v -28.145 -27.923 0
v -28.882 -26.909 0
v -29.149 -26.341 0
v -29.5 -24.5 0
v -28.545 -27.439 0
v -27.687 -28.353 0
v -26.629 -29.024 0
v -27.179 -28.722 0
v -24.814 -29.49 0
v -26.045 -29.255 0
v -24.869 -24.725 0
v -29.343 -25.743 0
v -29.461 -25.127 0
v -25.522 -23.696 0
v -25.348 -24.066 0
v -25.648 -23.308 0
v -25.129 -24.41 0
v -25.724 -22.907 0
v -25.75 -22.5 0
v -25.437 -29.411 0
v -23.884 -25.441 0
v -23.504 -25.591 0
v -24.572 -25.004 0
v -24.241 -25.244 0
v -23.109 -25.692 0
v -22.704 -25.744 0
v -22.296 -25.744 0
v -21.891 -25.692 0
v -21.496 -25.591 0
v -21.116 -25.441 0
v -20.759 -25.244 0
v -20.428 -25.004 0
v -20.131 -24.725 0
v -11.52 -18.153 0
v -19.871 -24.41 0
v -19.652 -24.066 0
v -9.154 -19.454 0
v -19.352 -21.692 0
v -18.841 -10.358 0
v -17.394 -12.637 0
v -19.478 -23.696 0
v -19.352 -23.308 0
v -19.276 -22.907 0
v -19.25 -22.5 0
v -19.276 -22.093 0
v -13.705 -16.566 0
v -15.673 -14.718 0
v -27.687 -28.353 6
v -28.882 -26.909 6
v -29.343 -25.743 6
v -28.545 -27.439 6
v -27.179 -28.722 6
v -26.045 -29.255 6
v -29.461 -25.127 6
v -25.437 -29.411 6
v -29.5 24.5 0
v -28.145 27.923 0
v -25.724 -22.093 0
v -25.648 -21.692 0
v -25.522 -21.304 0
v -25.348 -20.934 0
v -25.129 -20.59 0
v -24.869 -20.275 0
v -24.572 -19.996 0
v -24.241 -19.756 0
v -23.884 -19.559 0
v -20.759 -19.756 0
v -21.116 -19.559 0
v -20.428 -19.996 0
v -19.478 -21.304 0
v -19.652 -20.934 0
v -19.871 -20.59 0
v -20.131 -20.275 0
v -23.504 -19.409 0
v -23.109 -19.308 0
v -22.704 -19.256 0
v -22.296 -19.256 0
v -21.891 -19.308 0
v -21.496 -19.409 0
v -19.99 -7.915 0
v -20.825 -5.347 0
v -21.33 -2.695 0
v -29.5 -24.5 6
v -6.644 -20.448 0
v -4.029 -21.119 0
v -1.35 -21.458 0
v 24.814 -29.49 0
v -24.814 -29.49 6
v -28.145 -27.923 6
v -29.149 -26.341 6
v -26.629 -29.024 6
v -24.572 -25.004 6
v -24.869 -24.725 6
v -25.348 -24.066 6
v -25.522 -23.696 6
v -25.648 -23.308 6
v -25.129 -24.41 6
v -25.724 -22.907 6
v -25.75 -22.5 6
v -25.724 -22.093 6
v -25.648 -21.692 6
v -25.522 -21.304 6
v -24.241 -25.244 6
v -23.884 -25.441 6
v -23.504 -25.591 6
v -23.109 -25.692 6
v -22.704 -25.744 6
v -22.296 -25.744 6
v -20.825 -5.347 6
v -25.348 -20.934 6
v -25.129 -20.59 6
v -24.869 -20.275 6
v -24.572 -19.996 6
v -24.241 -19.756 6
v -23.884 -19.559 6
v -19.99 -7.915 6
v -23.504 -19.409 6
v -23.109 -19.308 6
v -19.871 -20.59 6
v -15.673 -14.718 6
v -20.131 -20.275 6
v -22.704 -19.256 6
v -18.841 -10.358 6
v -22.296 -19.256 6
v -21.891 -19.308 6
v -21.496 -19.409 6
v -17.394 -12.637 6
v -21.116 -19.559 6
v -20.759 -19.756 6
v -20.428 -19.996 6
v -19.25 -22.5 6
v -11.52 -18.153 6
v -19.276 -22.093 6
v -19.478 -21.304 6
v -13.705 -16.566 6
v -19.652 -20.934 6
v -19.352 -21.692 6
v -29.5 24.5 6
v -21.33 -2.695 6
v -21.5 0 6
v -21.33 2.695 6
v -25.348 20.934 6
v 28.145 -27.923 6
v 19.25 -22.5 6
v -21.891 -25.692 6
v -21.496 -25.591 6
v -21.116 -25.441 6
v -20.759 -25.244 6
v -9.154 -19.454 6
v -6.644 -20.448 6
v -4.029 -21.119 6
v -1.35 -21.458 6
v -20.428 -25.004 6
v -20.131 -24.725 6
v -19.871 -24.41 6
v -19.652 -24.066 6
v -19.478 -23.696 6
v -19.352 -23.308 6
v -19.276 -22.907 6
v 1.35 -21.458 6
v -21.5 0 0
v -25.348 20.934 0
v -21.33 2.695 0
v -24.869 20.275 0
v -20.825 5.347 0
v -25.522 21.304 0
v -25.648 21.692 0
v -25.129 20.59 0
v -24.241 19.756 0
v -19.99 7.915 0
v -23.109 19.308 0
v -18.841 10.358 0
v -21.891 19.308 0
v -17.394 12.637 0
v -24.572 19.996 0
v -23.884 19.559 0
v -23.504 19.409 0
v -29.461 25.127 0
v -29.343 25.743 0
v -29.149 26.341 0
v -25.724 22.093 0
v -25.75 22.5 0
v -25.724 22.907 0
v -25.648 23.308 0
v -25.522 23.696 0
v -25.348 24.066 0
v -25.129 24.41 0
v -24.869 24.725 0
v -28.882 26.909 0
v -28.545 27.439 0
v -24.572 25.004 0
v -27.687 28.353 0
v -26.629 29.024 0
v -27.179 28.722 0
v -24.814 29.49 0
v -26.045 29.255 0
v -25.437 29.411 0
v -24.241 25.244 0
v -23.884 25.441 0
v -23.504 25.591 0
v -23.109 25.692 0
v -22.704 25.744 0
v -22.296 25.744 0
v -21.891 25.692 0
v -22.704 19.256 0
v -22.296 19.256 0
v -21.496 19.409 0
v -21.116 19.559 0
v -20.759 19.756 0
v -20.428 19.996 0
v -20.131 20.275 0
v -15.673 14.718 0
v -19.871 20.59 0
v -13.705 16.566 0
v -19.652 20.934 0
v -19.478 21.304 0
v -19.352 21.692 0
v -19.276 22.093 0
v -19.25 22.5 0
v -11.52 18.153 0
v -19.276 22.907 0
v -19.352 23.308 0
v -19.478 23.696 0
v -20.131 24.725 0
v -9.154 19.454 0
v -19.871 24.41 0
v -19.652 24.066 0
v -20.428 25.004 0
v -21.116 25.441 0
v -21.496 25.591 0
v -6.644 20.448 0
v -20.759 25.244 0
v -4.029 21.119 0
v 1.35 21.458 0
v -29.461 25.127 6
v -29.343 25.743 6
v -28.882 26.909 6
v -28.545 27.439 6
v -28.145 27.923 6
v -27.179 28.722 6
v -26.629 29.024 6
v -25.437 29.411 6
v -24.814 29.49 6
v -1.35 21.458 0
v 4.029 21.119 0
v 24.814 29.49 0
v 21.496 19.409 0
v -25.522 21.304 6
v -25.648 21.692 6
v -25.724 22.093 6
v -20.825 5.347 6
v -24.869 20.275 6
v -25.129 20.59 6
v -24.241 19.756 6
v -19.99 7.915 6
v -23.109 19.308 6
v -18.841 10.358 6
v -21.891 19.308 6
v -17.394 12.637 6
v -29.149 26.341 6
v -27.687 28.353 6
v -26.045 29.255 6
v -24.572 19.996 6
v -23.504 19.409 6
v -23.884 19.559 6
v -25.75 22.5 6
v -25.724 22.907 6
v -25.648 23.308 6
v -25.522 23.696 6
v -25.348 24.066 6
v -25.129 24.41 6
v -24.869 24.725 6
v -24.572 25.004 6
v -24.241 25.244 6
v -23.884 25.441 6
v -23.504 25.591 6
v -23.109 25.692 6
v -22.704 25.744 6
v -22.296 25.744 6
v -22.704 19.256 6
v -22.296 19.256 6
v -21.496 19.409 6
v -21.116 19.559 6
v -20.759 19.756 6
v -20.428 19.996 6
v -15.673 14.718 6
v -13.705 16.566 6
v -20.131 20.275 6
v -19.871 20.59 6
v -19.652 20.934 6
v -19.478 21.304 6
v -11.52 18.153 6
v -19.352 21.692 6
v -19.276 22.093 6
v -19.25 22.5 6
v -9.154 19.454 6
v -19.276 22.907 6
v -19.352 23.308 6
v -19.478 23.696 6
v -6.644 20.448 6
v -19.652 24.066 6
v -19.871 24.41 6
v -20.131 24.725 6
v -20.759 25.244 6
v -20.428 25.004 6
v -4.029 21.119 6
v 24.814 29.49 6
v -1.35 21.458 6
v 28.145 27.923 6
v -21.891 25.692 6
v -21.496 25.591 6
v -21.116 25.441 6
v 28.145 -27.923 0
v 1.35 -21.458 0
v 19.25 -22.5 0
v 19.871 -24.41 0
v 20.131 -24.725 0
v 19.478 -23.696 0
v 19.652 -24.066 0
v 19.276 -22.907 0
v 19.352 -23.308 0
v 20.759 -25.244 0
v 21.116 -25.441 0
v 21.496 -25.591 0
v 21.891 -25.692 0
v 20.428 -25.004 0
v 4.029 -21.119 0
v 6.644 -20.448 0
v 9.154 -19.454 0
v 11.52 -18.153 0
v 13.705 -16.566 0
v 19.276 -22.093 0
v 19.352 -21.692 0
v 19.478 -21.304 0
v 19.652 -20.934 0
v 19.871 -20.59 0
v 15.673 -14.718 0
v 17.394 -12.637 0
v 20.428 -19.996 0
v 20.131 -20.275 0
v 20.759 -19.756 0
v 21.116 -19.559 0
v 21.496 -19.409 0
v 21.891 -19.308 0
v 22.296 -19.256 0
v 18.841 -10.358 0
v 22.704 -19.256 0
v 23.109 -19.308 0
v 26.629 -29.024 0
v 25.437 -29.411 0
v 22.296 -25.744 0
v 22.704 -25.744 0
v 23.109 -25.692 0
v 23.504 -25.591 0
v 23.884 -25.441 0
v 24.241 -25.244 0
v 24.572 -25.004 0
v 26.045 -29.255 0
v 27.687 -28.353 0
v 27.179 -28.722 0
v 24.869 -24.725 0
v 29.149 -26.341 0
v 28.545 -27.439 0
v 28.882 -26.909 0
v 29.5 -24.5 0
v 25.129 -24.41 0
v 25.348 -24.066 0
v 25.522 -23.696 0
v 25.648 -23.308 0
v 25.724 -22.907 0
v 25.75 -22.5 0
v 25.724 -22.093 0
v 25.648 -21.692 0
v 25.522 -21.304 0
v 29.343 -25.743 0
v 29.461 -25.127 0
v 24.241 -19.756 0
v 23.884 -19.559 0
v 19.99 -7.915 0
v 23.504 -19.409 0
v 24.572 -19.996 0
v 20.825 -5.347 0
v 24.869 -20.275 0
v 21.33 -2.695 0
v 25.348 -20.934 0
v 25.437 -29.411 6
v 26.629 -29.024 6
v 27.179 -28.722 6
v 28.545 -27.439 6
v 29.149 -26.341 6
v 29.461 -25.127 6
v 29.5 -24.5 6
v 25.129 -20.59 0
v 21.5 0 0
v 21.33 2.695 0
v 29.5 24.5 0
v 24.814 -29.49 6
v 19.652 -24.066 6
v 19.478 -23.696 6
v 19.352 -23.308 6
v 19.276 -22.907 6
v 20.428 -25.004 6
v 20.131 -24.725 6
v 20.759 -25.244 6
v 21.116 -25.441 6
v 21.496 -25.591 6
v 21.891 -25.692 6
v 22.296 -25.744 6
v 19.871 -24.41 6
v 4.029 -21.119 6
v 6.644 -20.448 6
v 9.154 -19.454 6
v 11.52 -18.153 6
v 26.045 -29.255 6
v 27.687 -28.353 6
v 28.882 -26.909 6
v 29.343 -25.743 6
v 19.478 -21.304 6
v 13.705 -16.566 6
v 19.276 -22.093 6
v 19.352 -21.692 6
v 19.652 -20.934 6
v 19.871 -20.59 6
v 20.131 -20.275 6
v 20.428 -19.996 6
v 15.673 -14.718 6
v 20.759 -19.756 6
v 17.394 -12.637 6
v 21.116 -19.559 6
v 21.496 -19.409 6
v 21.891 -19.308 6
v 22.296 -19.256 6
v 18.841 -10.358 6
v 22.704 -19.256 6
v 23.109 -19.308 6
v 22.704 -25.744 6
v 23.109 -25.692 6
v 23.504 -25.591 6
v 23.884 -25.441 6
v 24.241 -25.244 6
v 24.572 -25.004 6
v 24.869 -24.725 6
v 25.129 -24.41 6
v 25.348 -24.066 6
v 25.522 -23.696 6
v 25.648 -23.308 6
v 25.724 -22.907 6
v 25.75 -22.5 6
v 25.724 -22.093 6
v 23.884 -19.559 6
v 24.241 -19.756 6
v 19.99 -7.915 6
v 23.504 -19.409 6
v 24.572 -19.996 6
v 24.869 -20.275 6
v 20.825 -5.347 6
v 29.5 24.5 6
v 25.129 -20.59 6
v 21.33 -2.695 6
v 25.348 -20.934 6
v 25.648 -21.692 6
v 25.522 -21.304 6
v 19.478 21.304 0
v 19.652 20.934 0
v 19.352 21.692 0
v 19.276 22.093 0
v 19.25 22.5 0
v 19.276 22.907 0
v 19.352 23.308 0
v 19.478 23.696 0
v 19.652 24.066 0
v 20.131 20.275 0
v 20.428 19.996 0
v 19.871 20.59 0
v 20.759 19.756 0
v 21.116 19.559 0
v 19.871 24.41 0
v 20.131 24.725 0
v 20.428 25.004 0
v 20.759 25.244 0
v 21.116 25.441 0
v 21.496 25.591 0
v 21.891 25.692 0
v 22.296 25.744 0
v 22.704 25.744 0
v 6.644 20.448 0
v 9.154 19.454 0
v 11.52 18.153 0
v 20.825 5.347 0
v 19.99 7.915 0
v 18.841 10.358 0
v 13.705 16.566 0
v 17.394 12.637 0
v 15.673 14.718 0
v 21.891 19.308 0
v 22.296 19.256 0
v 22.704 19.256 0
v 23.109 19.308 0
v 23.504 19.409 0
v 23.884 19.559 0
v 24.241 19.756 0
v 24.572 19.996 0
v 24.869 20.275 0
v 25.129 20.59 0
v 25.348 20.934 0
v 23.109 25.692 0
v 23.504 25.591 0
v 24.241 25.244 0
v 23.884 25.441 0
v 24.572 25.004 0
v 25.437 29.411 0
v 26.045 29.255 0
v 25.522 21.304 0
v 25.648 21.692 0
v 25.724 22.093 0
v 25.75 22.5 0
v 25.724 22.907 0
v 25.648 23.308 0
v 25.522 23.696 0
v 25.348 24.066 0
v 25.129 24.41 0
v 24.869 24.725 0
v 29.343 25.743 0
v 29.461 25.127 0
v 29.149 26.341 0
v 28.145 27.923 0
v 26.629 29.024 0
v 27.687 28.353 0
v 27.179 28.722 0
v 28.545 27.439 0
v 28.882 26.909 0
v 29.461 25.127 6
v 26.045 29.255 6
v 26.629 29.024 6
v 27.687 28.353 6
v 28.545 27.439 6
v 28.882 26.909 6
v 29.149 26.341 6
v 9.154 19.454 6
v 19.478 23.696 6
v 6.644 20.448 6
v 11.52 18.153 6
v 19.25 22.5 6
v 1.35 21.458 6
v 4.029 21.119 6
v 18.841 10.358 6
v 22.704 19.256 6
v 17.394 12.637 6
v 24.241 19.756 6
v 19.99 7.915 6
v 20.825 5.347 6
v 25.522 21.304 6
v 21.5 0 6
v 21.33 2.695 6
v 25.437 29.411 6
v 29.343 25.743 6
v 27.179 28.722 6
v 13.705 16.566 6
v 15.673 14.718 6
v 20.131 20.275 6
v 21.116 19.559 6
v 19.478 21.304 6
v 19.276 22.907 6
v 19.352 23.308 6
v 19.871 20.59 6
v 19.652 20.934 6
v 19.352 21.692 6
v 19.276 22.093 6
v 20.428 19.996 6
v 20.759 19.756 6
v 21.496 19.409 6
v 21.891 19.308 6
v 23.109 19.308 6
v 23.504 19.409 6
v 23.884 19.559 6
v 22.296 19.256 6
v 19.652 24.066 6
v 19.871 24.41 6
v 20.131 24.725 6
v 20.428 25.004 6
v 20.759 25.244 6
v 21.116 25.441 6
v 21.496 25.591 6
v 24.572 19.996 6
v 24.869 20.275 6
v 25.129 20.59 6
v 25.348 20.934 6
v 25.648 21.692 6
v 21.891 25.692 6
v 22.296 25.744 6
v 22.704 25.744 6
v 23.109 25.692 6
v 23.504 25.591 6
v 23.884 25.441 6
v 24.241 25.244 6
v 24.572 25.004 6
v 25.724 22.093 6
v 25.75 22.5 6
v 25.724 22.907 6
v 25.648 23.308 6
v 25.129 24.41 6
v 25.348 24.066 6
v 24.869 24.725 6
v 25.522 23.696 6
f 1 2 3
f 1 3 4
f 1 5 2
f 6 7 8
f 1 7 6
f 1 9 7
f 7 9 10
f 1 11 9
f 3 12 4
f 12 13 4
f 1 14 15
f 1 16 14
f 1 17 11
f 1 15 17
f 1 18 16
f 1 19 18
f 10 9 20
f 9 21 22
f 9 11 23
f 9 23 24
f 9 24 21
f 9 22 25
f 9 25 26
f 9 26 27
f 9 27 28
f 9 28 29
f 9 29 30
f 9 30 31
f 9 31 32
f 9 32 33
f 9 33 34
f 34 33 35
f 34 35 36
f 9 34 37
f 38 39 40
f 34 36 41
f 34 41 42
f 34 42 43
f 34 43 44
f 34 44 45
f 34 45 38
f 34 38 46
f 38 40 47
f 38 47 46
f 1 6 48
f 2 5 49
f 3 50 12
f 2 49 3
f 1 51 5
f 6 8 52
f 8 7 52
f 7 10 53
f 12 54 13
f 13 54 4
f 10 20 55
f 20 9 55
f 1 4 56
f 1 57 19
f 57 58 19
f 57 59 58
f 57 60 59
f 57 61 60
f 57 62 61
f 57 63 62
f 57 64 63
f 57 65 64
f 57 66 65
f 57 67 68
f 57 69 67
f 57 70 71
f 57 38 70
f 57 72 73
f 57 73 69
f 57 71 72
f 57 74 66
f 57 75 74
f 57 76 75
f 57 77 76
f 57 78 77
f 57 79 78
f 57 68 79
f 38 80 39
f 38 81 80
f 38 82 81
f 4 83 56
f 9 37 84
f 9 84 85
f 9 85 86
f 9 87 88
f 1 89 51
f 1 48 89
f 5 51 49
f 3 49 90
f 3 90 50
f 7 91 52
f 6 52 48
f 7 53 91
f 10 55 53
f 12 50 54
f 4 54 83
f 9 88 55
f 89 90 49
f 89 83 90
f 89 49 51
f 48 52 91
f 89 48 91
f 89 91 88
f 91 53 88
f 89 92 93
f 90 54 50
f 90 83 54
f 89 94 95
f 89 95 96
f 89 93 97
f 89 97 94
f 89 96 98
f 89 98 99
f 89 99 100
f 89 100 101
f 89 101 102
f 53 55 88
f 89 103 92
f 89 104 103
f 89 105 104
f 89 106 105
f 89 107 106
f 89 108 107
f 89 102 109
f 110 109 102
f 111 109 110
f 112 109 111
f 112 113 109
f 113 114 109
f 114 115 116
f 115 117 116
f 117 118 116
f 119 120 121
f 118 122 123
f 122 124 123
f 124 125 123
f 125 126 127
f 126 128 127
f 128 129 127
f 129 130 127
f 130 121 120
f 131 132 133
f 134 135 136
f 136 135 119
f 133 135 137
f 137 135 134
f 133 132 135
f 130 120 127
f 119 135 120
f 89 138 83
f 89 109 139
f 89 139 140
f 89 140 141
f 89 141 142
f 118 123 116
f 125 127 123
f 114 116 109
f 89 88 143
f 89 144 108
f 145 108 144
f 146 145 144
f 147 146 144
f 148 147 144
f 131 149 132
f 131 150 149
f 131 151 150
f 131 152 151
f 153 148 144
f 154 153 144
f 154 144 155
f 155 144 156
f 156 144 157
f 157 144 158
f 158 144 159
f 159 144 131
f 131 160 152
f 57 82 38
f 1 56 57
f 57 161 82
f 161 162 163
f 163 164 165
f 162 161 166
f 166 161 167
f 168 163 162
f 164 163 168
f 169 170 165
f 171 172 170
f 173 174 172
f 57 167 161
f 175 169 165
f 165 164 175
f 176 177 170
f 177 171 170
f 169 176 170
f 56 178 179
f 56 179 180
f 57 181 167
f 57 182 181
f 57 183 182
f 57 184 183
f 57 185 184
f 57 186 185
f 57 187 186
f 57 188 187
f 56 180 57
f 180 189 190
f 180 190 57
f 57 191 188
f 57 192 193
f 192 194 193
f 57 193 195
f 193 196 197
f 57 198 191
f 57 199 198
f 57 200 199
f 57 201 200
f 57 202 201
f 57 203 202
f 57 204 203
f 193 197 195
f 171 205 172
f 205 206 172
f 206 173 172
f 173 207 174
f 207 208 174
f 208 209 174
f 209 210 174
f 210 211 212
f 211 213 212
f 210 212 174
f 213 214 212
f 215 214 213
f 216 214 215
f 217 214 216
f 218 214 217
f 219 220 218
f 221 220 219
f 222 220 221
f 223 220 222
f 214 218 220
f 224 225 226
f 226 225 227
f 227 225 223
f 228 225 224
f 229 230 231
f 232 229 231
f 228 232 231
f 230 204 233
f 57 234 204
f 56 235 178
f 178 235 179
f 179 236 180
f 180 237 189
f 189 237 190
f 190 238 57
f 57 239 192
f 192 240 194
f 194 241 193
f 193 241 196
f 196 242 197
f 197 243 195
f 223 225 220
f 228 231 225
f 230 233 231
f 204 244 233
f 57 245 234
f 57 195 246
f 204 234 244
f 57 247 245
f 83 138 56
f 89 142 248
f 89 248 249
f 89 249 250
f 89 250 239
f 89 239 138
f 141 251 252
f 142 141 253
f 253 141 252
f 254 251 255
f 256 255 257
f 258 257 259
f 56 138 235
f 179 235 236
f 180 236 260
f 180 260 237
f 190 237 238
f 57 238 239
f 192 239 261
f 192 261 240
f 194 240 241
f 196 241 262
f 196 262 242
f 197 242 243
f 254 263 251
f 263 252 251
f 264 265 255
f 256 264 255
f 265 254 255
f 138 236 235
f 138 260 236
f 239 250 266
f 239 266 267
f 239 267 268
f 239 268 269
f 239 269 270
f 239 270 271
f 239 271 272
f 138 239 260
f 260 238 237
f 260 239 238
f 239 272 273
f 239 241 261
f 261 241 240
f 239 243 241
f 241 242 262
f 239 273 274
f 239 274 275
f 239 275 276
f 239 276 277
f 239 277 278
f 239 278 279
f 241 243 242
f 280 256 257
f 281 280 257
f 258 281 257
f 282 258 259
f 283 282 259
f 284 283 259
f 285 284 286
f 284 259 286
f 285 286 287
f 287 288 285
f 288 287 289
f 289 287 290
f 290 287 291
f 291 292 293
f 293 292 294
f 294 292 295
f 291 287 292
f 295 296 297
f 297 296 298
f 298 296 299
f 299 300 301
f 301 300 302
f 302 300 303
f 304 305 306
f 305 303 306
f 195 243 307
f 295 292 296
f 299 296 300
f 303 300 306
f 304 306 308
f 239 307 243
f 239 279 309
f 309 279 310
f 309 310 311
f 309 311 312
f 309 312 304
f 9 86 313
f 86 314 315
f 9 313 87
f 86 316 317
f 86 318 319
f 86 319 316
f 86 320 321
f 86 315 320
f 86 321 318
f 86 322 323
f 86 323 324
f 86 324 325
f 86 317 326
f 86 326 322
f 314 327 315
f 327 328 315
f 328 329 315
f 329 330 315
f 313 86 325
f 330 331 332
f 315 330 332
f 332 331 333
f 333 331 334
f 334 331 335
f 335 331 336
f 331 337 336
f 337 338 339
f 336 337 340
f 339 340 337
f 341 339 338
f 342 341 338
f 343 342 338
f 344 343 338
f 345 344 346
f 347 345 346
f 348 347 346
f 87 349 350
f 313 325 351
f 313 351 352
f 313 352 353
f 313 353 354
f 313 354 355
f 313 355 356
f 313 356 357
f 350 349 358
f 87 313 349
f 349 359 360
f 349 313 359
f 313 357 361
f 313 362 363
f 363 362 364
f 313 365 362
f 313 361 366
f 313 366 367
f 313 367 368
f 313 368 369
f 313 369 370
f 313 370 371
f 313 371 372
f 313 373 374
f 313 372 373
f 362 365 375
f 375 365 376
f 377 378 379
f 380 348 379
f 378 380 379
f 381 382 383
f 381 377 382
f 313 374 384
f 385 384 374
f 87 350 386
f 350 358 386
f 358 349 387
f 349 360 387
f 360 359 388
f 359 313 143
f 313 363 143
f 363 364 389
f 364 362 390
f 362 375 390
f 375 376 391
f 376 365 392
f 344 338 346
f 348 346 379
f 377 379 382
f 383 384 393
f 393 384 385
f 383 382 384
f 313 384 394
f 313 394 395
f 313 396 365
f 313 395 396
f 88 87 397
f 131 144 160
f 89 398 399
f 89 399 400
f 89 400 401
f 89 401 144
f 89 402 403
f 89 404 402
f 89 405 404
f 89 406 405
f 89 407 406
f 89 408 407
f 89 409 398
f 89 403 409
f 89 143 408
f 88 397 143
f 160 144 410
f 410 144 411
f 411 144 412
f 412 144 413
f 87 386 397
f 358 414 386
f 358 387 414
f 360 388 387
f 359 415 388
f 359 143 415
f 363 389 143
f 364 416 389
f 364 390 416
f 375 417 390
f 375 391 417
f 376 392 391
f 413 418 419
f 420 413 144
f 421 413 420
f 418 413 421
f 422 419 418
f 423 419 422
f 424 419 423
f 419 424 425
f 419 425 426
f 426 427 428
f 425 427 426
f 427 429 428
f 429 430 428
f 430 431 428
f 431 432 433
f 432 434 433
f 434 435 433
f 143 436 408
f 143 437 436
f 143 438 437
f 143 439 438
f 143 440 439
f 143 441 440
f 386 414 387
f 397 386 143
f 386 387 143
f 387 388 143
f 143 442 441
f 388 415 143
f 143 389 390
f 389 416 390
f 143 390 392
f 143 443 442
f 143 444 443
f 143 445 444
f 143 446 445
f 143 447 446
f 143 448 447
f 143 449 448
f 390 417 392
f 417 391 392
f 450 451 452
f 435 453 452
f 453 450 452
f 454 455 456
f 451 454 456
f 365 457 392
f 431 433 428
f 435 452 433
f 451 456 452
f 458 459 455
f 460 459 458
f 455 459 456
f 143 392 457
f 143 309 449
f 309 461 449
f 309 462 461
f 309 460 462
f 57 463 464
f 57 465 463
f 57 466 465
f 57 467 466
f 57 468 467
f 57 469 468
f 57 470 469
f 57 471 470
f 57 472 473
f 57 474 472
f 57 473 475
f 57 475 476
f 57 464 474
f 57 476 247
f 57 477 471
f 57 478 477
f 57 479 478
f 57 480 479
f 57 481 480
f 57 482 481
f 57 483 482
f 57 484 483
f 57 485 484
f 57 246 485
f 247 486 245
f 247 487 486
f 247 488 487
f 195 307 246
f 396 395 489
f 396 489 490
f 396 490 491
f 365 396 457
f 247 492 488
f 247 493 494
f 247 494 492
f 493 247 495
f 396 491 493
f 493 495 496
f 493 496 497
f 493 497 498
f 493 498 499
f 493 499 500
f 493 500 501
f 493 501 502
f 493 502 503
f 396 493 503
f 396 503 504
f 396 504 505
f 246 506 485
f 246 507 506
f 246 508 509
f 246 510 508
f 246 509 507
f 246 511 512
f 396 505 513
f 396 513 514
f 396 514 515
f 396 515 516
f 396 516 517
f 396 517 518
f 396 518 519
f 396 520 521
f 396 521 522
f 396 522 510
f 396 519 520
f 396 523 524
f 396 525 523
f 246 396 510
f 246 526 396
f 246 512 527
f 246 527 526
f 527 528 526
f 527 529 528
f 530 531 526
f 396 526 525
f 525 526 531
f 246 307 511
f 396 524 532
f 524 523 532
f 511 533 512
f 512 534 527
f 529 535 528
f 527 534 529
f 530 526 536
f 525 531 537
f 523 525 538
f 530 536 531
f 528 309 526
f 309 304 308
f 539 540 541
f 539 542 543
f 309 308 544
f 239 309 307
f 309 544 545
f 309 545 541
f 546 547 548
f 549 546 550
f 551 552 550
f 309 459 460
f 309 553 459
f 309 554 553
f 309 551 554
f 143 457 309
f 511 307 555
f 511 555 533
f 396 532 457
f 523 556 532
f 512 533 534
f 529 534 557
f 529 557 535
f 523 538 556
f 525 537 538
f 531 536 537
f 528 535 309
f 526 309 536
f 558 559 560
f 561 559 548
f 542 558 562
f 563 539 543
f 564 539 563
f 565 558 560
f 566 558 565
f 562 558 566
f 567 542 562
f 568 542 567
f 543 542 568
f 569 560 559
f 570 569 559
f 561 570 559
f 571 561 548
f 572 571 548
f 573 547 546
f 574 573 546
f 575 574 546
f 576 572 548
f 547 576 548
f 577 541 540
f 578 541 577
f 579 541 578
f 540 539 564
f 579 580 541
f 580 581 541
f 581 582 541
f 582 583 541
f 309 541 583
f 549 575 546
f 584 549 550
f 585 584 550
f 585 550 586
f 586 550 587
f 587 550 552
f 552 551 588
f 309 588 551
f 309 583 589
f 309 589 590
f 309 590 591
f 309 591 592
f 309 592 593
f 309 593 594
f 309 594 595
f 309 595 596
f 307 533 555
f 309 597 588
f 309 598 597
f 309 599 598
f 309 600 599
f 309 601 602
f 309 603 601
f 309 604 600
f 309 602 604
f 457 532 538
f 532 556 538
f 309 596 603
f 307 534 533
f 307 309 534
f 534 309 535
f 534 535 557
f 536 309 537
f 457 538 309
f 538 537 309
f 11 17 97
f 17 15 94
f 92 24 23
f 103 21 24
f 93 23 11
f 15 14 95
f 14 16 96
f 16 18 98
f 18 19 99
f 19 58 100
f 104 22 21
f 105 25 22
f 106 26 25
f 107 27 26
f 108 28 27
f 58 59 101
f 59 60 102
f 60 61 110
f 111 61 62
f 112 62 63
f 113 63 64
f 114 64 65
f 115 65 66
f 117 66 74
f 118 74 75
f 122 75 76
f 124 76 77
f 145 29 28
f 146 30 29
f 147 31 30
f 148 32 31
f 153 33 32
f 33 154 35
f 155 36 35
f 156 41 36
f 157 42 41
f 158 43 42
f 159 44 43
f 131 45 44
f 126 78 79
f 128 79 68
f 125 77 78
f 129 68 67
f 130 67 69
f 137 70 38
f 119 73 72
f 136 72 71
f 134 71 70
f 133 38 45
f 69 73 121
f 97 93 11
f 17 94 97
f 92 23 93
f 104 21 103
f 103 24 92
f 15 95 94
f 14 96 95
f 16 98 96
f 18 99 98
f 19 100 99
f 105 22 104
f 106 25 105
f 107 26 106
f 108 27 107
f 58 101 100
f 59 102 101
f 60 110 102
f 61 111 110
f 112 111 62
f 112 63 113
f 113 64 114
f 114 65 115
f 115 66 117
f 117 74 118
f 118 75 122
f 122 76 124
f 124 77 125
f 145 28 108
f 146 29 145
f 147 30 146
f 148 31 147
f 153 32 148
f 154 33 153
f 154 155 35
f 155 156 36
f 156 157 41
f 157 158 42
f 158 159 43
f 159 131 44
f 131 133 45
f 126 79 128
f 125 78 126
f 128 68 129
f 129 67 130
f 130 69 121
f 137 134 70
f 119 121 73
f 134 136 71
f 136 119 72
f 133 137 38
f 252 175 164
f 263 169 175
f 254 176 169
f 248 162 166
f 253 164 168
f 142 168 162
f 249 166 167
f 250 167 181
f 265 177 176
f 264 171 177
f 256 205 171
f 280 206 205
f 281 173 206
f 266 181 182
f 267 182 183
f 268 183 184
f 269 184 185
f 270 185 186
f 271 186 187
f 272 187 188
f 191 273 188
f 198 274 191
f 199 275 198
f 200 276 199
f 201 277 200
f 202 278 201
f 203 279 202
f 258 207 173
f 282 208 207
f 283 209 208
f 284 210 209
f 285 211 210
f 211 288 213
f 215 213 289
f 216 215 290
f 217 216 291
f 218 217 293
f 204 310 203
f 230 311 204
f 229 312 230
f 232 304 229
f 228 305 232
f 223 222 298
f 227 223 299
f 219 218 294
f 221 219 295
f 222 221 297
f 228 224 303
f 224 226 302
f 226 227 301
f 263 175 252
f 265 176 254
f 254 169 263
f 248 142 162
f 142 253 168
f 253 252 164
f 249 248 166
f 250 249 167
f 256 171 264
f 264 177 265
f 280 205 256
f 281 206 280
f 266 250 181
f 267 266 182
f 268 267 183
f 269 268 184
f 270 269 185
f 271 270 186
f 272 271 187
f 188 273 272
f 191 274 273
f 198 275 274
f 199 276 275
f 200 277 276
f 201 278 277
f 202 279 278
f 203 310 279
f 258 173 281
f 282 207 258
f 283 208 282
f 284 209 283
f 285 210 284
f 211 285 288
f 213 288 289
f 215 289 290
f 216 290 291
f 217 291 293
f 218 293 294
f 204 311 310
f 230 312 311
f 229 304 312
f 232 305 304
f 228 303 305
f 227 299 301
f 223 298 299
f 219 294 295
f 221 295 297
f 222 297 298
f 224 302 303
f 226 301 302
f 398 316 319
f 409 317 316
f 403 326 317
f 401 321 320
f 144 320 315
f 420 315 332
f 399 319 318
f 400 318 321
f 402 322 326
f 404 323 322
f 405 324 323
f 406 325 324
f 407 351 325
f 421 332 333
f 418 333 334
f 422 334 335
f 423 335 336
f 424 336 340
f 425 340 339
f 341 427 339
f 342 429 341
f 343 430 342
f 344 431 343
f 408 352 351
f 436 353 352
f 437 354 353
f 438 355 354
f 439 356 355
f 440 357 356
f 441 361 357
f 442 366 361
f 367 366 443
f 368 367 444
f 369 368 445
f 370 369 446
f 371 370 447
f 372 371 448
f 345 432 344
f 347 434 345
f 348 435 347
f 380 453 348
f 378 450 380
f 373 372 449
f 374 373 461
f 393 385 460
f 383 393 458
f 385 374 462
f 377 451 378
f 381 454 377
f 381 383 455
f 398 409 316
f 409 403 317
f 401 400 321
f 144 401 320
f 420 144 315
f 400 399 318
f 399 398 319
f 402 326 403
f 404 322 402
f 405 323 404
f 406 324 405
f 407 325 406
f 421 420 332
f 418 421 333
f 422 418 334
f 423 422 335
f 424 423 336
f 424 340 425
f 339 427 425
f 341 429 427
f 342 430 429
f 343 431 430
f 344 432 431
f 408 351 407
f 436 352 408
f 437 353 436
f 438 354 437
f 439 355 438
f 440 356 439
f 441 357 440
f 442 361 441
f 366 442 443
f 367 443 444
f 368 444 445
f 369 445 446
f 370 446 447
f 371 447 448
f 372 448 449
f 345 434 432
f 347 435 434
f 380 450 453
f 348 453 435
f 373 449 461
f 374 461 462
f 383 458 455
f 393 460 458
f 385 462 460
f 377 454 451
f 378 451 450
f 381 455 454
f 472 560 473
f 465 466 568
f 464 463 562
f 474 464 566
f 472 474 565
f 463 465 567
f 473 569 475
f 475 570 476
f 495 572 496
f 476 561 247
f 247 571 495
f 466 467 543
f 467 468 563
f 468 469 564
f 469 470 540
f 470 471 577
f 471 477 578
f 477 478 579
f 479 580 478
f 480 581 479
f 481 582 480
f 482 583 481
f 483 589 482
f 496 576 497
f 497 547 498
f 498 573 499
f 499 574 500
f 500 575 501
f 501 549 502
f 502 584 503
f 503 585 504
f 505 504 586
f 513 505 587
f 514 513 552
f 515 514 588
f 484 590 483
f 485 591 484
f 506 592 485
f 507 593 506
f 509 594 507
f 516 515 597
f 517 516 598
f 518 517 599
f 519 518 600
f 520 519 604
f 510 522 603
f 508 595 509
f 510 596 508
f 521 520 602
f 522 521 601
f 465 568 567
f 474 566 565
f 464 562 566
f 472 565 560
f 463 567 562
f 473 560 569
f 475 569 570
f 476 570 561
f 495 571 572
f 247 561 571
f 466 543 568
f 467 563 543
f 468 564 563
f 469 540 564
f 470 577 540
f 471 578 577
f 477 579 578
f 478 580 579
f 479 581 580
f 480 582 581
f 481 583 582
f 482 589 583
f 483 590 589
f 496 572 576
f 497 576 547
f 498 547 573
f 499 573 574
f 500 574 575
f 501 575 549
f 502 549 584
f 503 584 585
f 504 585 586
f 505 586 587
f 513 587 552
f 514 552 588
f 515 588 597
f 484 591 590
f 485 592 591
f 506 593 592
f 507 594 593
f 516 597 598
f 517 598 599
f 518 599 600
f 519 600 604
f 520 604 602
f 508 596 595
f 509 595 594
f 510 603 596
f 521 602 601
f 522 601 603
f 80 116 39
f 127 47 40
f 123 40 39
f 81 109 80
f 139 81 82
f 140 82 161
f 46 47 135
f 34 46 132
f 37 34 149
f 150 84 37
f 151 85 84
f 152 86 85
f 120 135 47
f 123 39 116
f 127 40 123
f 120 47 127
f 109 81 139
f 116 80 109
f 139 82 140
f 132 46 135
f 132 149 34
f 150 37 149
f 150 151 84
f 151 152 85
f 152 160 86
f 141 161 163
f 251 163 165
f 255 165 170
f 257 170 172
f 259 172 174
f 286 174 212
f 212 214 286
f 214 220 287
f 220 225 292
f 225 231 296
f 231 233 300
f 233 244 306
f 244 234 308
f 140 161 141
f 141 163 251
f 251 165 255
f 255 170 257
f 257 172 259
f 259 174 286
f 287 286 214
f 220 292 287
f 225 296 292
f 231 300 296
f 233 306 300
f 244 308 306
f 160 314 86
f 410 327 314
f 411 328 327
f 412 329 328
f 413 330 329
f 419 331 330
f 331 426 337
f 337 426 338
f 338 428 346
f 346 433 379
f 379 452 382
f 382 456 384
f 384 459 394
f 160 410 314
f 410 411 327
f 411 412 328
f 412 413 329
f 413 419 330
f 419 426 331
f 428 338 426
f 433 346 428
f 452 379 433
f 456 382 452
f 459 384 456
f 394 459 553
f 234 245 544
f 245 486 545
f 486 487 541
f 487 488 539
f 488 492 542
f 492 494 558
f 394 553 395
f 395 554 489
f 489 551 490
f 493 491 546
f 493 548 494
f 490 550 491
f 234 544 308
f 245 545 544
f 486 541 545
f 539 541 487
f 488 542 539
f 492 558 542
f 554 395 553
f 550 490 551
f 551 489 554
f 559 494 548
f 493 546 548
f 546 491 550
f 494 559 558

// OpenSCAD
$fn = 50;

difference() {
	union() {
		hull() {
			translate(v = [-24.5, 24.5, 0]) {
				cylinder(h = 6, r = 5);
			}
			translate(v = [24.5, 24.5, 0]) {
				cylinder(h = 6, r = 5);
			}
			translate(v = [-24.5, -24.5, 0]) {
				cylinder(h = 6, r = 5);
			}
			translate(v = [24.5, -24.5, 0]) {
				cylinder(h = 6, r = 5);
			}
		}
	}
	union() {
		translate(v = [-22.5, -22.5, -100.0]) {
			cylinder(h = 200, r = 3.25);
		}
		translate(v = [-22.5, 22.5, -100.0]) {
			cylinder(h = 200, r = 3.25);
		}
		translate(v = [22.5, -22.5, -100.0]) {
			cylinder(h = 200, r = 3.25);
		}
		translate(v = [22.5, 22.5, -100.0]) {
			cylinder(h = 200, r = 3.25);
		}
		translate(v = [-22.5, -22.5, -100.0]) {
			cylinder(h = 200, r = 1.8);
		}
		translate(v = [-22.5, 22.5, -100.0]) {
			cylinder(h = 200, r = 1.8);
		}
		translate(v = [22.5, -22.5, -100.0]) {
			cylinder(h = 200, r = 1.8);
		}
		translate(v = [22.5, 22.5, -100.0]) {
			cylinder(h = 200, r = 1.8);
		}
		cylinder(h = 6, r = 21.5);
	}
}
